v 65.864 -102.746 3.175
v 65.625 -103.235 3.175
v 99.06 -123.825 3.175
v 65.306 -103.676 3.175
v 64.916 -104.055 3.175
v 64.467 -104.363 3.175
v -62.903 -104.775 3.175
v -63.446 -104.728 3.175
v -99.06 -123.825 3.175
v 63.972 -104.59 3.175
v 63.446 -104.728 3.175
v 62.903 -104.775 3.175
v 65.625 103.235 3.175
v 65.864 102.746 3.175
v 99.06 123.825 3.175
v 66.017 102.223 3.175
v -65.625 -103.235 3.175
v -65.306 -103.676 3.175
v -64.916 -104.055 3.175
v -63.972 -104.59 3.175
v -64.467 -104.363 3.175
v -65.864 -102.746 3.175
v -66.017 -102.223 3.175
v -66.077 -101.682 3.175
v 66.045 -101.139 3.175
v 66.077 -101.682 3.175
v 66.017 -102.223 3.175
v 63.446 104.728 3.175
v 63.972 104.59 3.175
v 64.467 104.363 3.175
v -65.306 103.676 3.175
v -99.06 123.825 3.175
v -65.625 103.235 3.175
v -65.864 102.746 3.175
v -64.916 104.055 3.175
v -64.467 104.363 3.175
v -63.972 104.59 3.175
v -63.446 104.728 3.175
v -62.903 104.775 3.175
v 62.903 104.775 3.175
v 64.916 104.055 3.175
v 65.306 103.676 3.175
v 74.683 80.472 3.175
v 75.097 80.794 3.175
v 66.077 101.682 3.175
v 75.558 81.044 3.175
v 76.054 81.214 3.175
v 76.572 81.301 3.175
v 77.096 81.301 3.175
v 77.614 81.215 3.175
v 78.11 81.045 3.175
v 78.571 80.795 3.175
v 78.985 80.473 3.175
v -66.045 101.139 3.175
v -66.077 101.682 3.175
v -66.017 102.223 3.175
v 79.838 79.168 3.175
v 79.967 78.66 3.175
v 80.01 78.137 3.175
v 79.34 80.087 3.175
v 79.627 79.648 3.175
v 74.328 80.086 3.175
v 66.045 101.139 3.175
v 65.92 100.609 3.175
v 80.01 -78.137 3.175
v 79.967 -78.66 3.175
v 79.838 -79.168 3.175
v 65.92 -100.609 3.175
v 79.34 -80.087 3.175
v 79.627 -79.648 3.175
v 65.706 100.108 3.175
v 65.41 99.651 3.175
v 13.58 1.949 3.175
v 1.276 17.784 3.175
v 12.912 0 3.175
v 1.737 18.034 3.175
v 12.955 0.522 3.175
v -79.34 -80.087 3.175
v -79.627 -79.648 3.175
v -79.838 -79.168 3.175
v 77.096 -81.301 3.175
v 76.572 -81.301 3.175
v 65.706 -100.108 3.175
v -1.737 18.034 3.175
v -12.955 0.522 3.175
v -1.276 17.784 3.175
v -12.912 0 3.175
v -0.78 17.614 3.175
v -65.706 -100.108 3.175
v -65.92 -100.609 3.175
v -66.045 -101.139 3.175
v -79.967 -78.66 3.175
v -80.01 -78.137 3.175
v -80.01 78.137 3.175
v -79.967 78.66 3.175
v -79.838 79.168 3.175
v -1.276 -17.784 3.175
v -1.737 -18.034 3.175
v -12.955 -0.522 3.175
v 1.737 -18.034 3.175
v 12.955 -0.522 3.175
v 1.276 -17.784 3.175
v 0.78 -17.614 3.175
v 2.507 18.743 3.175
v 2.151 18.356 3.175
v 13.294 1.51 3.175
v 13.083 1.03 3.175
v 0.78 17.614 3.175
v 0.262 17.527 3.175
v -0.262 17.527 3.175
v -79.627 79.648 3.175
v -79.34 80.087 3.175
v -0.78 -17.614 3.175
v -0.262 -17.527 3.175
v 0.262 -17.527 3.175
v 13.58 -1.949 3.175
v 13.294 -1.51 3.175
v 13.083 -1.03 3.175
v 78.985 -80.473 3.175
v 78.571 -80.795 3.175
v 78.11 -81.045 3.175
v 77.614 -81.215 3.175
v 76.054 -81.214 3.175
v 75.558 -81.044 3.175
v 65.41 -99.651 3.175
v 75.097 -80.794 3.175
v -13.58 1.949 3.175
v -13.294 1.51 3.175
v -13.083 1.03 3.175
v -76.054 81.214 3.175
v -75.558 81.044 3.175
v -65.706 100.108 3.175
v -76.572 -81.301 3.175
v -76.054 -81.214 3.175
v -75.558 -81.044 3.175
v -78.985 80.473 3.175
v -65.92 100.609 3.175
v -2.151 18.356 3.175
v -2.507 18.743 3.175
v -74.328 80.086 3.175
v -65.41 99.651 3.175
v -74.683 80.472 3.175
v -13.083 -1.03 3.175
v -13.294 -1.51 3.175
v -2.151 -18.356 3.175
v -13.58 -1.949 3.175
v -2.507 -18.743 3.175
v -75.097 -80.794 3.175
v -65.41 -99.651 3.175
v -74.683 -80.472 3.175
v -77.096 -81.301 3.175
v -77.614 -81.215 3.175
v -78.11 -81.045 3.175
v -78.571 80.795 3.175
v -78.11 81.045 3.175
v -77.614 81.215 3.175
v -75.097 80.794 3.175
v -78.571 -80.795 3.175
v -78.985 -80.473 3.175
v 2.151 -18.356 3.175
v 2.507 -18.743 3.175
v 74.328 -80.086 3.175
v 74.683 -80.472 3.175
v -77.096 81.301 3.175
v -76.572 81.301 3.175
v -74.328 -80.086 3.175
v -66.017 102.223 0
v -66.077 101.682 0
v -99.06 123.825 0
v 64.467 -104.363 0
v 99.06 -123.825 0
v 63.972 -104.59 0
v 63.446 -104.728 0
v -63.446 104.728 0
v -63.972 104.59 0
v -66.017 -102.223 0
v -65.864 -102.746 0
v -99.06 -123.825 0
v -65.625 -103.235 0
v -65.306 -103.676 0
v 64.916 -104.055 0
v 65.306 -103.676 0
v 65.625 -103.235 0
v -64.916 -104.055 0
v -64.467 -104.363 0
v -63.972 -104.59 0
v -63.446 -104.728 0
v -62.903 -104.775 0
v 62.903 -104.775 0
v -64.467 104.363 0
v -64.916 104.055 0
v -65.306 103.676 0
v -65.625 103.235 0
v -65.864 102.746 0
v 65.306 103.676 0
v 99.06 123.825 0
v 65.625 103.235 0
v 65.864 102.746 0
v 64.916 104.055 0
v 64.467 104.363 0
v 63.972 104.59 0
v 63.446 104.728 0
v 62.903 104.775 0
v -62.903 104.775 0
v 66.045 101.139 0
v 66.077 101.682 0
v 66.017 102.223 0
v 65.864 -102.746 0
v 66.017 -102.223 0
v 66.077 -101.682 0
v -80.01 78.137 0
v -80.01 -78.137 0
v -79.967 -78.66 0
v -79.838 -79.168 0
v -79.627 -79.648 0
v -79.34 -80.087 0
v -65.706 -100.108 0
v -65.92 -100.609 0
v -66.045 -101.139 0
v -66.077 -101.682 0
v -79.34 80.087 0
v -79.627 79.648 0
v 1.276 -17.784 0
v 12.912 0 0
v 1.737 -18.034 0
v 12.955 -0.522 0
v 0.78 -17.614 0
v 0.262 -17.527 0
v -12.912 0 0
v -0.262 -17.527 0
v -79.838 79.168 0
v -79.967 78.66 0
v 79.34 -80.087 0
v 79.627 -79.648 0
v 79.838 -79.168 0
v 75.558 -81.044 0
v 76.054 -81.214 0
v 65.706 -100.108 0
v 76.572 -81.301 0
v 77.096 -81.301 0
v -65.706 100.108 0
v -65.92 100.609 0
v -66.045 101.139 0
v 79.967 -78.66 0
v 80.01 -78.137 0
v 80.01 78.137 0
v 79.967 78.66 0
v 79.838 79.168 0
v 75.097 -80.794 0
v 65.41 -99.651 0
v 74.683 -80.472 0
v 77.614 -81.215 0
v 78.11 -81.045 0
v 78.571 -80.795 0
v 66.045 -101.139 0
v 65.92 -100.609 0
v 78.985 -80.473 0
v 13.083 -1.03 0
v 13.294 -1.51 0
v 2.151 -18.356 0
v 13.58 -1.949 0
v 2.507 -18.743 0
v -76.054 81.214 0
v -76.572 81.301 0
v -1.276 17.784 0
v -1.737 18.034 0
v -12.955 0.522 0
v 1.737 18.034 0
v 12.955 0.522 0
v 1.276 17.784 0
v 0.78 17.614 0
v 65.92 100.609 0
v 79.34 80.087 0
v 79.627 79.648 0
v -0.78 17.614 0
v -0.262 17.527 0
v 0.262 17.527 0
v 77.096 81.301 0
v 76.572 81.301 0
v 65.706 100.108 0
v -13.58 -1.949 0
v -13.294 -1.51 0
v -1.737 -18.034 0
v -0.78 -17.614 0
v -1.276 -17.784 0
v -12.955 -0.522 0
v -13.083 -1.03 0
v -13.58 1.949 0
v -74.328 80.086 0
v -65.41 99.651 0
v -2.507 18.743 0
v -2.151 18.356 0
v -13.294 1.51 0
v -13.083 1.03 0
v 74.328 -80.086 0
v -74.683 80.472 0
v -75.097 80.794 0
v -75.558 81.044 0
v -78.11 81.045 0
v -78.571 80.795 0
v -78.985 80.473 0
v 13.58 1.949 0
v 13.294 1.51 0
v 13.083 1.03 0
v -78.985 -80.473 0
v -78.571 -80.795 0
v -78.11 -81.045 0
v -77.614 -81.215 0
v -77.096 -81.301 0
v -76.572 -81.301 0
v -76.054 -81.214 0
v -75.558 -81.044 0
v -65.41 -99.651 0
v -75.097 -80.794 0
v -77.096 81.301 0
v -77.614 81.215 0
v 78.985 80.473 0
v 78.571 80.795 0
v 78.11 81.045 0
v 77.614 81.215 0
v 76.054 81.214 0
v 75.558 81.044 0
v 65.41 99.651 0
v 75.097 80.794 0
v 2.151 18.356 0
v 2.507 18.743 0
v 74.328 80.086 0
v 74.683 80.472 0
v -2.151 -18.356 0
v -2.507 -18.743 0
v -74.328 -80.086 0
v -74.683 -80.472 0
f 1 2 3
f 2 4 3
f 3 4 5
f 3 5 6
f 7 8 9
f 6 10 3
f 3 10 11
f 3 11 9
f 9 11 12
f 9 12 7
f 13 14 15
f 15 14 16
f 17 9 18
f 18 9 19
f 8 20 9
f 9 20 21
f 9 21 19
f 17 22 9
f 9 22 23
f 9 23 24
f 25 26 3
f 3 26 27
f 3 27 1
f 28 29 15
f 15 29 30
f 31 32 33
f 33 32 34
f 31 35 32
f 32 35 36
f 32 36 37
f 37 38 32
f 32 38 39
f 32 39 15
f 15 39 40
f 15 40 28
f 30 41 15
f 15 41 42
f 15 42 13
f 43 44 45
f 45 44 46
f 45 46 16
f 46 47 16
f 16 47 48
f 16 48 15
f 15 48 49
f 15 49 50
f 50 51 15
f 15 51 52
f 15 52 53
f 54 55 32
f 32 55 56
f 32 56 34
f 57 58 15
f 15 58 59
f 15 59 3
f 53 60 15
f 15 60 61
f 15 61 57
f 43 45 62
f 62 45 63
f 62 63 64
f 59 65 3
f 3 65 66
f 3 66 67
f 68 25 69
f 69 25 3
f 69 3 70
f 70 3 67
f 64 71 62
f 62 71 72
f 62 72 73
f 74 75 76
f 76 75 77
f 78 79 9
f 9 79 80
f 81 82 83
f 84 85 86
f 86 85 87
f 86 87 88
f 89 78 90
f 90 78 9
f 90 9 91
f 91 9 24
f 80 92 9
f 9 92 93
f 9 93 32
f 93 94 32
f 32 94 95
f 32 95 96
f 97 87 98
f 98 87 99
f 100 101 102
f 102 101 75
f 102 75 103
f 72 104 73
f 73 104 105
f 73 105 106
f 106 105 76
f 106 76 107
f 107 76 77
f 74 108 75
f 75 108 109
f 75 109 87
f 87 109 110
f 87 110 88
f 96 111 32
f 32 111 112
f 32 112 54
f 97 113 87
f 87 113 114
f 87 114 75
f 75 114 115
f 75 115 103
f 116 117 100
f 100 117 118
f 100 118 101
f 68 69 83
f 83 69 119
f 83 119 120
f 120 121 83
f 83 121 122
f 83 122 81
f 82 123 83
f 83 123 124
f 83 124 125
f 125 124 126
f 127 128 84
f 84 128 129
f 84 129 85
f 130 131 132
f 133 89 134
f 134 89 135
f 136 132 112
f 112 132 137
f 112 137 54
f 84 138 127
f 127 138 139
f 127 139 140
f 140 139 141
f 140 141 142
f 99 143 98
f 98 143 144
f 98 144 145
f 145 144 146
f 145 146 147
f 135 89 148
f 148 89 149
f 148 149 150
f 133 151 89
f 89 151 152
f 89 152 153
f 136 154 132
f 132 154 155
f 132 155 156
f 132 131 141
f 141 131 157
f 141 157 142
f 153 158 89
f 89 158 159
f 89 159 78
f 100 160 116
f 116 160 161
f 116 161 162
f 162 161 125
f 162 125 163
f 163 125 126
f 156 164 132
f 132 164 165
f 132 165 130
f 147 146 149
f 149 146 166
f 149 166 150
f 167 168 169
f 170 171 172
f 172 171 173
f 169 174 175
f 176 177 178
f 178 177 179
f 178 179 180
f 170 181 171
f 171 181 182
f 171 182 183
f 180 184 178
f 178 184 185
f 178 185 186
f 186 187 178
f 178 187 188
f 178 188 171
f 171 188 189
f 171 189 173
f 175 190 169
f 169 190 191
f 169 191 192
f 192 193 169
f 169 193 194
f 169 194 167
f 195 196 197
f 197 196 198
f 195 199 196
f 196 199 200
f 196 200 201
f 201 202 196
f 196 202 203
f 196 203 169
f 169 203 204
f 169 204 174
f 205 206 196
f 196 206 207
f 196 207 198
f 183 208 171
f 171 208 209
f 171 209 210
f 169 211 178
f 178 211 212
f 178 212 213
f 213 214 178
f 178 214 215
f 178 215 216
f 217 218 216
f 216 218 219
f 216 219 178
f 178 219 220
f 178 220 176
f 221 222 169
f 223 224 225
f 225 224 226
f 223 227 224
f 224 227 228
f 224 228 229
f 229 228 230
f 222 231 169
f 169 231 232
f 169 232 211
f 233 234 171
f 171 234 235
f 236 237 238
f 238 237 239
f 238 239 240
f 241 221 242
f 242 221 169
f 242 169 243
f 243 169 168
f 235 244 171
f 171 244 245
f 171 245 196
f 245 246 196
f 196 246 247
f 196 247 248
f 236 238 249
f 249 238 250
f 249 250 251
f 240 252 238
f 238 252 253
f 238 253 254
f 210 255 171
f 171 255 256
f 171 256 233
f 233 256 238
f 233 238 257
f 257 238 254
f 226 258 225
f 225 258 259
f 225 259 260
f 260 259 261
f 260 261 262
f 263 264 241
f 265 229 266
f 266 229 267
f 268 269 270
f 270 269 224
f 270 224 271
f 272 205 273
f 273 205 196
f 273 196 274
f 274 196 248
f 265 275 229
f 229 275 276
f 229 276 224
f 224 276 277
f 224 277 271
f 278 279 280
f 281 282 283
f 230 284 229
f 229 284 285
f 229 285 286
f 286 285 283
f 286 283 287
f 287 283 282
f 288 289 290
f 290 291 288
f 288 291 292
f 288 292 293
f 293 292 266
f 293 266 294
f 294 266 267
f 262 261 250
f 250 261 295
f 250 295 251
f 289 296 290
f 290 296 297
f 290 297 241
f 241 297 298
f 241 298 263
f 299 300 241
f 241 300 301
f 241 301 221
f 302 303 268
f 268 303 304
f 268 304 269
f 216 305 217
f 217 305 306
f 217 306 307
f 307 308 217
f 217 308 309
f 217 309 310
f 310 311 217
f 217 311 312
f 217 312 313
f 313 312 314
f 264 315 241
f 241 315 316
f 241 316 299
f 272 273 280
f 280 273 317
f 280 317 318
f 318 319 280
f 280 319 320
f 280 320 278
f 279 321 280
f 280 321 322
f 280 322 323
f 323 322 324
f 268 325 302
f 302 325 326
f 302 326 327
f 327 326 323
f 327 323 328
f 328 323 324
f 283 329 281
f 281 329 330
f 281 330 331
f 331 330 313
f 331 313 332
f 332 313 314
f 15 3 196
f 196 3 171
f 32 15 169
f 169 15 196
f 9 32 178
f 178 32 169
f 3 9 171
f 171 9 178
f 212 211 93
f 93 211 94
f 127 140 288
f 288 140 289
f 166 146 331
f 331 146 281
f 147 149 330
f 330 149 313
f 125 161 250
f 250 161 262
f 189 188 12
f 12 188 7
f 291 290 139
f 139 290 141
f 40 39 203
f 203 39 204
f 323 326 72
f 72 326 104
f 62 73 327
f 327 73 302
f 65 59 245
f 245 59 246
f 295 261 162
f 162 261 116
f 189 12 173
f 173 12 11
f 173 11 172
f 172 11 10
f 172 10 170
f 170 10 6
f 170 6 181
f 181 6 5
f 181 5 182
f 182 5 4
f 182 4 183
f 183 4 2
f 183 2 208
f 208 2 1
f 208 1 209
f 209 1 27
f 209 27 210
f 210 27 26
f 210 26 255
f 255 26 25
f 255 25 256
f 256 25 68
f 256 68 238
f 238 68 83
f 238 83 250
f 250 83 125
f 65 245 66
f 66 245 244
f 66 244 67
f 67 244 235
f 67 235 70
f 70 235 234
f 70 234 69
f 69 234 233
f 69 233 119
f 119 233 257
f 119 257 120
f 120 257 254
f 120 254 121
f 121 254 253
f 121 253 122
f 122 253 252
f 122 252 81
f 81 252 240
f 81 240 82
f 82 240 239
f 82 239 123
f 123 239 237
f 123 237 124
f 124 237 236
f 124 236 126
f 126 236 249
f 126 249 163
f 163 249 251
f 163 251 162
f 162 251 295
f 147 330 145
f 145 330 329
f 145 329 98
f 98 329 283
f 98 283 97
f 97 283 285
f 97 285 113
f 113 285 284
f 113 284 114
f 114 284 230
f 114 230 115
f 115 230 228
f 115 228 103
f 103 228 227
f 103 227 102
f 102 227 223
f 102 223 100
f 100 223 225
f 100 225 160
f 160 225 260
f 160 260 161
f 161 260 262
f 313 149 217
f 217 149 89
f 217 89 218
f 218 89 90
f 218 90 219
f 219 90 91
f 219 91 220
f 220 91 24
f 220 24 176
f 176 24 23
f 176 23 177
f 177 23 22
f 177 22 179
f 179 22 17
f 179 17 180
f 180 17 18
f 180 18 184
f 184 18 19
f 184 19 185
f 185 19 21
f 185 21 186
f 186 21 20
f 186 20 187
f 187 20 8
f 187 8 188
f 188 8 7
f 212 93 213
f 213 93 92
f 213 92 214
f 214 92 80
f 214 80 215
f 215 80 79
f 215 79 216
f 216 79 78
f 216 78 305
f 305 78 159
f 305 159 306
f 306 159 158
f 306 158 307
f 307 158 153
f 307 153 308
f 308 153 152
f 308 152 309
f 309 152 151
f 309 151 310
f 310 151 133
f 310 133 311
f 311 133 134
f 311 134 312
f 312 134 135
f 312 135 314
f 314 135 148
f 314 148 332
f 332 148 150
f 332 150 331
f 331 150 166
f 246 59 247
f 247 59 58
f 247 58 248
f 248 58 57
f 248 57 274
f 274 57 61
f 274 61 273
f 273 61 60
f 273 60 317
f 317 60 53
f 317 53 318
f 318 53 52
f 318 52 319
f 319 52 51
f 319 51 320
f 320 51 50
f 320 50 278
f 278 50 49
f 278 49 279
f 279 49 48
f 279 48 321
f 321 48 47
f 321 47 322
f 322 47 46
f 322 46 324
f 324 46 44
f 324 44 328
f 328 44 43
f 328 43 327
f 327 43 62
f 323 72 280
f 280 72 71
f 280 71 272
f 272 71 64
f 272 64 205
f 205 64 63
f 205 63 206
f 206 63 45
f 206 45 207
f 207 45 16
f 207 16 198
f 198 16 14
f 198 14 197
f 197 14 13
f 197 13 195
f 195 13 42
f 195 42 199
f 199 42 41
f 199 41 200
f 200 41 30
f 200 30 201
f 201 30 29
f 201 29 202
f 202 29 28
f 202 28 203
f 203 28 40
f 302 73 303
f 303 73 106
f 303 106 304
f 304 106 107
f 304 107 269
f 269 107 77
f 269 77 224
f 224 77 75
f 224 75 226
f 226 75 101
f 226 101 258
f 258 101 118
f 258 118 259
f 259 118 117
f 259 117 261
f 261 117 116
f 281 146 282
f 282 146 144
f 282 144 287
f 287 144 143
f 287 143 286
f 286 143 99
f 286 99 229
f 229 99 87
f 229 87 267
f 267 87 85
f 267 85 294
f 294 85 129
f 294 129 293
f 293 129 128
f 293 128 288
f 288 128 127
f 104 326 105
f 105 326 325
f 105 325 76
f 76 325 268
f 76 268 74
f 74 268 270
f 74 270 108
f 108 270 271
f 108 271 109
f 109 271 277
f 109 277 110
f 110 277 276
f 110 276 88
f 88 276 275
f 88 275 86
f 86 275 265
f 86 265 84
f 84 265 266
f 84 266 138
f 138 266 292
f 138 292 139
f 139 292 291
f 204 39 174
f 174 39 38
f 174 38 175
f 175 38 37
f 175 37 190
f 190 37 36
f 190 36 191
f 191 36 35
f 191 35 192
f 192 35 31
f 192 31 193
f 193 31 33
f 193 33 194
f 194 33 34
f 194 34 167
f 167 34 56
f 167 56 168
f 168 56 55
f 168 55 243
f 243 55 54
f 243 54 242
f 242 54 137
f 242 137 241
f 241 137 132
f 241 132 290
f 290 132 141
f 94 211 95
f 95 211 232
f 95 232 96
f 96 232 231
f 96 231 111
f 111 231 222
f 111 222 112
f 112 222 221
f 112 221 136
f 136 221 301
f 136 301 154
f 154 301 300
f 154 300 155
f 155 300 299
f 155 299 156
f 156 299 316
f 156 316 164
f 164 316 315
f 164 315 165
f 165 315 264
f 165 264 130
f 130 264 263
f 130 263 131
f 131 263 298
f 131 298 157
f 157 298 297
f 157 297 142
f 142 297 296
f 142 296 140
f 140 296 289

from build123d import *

# Parameters (mm, degrees)
SKETCH1_W           = 198.12
SKETCH1_H           = 247.65
BOSS_EXTRUDE1_DEPTH = 3.175
CUT_EXTRUDE1_REACH  = 5.175
FILLET1_R           = 3.175


with BuildPart() as part:
    # Sketch1 → Boss-Extrude1 (new body)
    with BuildSketch(Plane.XY):
        Rectangle(SKETCH1_W, SKETCH1_H)
    extrude(amount=BOSS_EXTRUDE1_DEPTH)

    # Sketch2 → Cut-Extrude1 (cut, up to next)
    with BuildSketch(Plane.XY.offset(3.175), mode=Mode.PRIVATE) as cut_extrude1_sk1:
        Polygon((-80.01, -87.393535256), (-12.065, 0), (-80.01, 87.393535256), align=None)
    cut_extrude1_tool1 = extrude(cut_extrude1_sk1.sketch, amount=-CUT_EXTRUDE1_REACH, mode=Mode.PRIVATE) & part.part
    add(cut_extrude1_tool1.solids().sort_by_distance((-57.361667, 0, 3.175))[0], mode=Mode.SUBTRACT)
    # Sketch2 → Cut-Extrude1 (cut, up to next)
    with BuildSketch(Plane.XY.offset(3.175), mode=Mode.PRIVATE) as cut_extrude1_sk2:
        Polygon((69.393397971, 104.775), (-69.393397971, 104.775), (0, 15.518478223), align=None)
    cut_extrude1_tool2 = extrude(cut_extrude1_sk2.sketch, amount=-CUT_EXTRUDE1_REACH, mode=Mode.PRIVATE) & part.part
    add(cut_extrude1_tool2.solids().sort_by_distance((0, 75.022826, 3.175))[0], mode=Mode.SUBTRACT)
    # Sketch2 → Cut-Extrude1 (cut, up to next)
    with BuildSketch(Plane.XY.offset(3.175), mode=Mode.PRIVATE) as cut_extrude1_sk3:
        Polygon((80.01, 87.393535256), (12.065, 0), (80.01, -87.393535256), align=None)
    cut_extrude1_tool3 = extrude(cut_extrude1_sk3.sketch, amount=-CUT_EXTRUDE1_REACH, mode=Mode.PRIVATE) & part.part
    add(cut_extrude1_tool3.solids().sort_by_distance((57.361667, 0, 3.175))[0], mode=Mode.SUBTRACT)
    # Sketch2 → Cut-Extrude1 (cut, up to next)
    with BuildSketch(Plane.XY.offset(3.175), mode=Mode.PRIVATE) as cut_extrude1_sk4:
        Polygon((69.393397971, -104.775), (0, -15.518478223), (-69.393397971, -104.775), align=None)
    cut_extrude1_tool4 = extrude(cut_extrude1_sk4.sketch, amount=-CUT_EXTRUDE1_REACH, mode=Mode.PRIVATE) & part.part
    add(cut_extrude1_tool4.solids().sort_by_distance((0, -75.022826, 3.175))[0], mode=Mode.SUBTRACT)

    # Fillet1
    fillet1_edges = [part.edges().sort_by_distance(p)[0] for p in [
        (12.065, 0, 1.5875),
        (80.01, 87.393535256, 1.5875),
        (80.01, -87.393535256, 1.5875),
        (0, 15.518478223, 1.5875),
        (-69.393397971, 104.775, 1.5875),
        (69.393397971, 104.775, 1.5875),
        (-69.393397971, -104.775, 1.5875),
        (0, -15.518478223, 1.5875),
        (69.393397971, -104.775, 1.5875),
        (-80.01, -87.393535256, 1.5875),
        (-80.01, 87.393535256, 1.5875),
        (-12.065, 0, 1.5875),
    ]]
    fillet(fillet1_edges, radius=FILLET1_R)


solid = part.part
